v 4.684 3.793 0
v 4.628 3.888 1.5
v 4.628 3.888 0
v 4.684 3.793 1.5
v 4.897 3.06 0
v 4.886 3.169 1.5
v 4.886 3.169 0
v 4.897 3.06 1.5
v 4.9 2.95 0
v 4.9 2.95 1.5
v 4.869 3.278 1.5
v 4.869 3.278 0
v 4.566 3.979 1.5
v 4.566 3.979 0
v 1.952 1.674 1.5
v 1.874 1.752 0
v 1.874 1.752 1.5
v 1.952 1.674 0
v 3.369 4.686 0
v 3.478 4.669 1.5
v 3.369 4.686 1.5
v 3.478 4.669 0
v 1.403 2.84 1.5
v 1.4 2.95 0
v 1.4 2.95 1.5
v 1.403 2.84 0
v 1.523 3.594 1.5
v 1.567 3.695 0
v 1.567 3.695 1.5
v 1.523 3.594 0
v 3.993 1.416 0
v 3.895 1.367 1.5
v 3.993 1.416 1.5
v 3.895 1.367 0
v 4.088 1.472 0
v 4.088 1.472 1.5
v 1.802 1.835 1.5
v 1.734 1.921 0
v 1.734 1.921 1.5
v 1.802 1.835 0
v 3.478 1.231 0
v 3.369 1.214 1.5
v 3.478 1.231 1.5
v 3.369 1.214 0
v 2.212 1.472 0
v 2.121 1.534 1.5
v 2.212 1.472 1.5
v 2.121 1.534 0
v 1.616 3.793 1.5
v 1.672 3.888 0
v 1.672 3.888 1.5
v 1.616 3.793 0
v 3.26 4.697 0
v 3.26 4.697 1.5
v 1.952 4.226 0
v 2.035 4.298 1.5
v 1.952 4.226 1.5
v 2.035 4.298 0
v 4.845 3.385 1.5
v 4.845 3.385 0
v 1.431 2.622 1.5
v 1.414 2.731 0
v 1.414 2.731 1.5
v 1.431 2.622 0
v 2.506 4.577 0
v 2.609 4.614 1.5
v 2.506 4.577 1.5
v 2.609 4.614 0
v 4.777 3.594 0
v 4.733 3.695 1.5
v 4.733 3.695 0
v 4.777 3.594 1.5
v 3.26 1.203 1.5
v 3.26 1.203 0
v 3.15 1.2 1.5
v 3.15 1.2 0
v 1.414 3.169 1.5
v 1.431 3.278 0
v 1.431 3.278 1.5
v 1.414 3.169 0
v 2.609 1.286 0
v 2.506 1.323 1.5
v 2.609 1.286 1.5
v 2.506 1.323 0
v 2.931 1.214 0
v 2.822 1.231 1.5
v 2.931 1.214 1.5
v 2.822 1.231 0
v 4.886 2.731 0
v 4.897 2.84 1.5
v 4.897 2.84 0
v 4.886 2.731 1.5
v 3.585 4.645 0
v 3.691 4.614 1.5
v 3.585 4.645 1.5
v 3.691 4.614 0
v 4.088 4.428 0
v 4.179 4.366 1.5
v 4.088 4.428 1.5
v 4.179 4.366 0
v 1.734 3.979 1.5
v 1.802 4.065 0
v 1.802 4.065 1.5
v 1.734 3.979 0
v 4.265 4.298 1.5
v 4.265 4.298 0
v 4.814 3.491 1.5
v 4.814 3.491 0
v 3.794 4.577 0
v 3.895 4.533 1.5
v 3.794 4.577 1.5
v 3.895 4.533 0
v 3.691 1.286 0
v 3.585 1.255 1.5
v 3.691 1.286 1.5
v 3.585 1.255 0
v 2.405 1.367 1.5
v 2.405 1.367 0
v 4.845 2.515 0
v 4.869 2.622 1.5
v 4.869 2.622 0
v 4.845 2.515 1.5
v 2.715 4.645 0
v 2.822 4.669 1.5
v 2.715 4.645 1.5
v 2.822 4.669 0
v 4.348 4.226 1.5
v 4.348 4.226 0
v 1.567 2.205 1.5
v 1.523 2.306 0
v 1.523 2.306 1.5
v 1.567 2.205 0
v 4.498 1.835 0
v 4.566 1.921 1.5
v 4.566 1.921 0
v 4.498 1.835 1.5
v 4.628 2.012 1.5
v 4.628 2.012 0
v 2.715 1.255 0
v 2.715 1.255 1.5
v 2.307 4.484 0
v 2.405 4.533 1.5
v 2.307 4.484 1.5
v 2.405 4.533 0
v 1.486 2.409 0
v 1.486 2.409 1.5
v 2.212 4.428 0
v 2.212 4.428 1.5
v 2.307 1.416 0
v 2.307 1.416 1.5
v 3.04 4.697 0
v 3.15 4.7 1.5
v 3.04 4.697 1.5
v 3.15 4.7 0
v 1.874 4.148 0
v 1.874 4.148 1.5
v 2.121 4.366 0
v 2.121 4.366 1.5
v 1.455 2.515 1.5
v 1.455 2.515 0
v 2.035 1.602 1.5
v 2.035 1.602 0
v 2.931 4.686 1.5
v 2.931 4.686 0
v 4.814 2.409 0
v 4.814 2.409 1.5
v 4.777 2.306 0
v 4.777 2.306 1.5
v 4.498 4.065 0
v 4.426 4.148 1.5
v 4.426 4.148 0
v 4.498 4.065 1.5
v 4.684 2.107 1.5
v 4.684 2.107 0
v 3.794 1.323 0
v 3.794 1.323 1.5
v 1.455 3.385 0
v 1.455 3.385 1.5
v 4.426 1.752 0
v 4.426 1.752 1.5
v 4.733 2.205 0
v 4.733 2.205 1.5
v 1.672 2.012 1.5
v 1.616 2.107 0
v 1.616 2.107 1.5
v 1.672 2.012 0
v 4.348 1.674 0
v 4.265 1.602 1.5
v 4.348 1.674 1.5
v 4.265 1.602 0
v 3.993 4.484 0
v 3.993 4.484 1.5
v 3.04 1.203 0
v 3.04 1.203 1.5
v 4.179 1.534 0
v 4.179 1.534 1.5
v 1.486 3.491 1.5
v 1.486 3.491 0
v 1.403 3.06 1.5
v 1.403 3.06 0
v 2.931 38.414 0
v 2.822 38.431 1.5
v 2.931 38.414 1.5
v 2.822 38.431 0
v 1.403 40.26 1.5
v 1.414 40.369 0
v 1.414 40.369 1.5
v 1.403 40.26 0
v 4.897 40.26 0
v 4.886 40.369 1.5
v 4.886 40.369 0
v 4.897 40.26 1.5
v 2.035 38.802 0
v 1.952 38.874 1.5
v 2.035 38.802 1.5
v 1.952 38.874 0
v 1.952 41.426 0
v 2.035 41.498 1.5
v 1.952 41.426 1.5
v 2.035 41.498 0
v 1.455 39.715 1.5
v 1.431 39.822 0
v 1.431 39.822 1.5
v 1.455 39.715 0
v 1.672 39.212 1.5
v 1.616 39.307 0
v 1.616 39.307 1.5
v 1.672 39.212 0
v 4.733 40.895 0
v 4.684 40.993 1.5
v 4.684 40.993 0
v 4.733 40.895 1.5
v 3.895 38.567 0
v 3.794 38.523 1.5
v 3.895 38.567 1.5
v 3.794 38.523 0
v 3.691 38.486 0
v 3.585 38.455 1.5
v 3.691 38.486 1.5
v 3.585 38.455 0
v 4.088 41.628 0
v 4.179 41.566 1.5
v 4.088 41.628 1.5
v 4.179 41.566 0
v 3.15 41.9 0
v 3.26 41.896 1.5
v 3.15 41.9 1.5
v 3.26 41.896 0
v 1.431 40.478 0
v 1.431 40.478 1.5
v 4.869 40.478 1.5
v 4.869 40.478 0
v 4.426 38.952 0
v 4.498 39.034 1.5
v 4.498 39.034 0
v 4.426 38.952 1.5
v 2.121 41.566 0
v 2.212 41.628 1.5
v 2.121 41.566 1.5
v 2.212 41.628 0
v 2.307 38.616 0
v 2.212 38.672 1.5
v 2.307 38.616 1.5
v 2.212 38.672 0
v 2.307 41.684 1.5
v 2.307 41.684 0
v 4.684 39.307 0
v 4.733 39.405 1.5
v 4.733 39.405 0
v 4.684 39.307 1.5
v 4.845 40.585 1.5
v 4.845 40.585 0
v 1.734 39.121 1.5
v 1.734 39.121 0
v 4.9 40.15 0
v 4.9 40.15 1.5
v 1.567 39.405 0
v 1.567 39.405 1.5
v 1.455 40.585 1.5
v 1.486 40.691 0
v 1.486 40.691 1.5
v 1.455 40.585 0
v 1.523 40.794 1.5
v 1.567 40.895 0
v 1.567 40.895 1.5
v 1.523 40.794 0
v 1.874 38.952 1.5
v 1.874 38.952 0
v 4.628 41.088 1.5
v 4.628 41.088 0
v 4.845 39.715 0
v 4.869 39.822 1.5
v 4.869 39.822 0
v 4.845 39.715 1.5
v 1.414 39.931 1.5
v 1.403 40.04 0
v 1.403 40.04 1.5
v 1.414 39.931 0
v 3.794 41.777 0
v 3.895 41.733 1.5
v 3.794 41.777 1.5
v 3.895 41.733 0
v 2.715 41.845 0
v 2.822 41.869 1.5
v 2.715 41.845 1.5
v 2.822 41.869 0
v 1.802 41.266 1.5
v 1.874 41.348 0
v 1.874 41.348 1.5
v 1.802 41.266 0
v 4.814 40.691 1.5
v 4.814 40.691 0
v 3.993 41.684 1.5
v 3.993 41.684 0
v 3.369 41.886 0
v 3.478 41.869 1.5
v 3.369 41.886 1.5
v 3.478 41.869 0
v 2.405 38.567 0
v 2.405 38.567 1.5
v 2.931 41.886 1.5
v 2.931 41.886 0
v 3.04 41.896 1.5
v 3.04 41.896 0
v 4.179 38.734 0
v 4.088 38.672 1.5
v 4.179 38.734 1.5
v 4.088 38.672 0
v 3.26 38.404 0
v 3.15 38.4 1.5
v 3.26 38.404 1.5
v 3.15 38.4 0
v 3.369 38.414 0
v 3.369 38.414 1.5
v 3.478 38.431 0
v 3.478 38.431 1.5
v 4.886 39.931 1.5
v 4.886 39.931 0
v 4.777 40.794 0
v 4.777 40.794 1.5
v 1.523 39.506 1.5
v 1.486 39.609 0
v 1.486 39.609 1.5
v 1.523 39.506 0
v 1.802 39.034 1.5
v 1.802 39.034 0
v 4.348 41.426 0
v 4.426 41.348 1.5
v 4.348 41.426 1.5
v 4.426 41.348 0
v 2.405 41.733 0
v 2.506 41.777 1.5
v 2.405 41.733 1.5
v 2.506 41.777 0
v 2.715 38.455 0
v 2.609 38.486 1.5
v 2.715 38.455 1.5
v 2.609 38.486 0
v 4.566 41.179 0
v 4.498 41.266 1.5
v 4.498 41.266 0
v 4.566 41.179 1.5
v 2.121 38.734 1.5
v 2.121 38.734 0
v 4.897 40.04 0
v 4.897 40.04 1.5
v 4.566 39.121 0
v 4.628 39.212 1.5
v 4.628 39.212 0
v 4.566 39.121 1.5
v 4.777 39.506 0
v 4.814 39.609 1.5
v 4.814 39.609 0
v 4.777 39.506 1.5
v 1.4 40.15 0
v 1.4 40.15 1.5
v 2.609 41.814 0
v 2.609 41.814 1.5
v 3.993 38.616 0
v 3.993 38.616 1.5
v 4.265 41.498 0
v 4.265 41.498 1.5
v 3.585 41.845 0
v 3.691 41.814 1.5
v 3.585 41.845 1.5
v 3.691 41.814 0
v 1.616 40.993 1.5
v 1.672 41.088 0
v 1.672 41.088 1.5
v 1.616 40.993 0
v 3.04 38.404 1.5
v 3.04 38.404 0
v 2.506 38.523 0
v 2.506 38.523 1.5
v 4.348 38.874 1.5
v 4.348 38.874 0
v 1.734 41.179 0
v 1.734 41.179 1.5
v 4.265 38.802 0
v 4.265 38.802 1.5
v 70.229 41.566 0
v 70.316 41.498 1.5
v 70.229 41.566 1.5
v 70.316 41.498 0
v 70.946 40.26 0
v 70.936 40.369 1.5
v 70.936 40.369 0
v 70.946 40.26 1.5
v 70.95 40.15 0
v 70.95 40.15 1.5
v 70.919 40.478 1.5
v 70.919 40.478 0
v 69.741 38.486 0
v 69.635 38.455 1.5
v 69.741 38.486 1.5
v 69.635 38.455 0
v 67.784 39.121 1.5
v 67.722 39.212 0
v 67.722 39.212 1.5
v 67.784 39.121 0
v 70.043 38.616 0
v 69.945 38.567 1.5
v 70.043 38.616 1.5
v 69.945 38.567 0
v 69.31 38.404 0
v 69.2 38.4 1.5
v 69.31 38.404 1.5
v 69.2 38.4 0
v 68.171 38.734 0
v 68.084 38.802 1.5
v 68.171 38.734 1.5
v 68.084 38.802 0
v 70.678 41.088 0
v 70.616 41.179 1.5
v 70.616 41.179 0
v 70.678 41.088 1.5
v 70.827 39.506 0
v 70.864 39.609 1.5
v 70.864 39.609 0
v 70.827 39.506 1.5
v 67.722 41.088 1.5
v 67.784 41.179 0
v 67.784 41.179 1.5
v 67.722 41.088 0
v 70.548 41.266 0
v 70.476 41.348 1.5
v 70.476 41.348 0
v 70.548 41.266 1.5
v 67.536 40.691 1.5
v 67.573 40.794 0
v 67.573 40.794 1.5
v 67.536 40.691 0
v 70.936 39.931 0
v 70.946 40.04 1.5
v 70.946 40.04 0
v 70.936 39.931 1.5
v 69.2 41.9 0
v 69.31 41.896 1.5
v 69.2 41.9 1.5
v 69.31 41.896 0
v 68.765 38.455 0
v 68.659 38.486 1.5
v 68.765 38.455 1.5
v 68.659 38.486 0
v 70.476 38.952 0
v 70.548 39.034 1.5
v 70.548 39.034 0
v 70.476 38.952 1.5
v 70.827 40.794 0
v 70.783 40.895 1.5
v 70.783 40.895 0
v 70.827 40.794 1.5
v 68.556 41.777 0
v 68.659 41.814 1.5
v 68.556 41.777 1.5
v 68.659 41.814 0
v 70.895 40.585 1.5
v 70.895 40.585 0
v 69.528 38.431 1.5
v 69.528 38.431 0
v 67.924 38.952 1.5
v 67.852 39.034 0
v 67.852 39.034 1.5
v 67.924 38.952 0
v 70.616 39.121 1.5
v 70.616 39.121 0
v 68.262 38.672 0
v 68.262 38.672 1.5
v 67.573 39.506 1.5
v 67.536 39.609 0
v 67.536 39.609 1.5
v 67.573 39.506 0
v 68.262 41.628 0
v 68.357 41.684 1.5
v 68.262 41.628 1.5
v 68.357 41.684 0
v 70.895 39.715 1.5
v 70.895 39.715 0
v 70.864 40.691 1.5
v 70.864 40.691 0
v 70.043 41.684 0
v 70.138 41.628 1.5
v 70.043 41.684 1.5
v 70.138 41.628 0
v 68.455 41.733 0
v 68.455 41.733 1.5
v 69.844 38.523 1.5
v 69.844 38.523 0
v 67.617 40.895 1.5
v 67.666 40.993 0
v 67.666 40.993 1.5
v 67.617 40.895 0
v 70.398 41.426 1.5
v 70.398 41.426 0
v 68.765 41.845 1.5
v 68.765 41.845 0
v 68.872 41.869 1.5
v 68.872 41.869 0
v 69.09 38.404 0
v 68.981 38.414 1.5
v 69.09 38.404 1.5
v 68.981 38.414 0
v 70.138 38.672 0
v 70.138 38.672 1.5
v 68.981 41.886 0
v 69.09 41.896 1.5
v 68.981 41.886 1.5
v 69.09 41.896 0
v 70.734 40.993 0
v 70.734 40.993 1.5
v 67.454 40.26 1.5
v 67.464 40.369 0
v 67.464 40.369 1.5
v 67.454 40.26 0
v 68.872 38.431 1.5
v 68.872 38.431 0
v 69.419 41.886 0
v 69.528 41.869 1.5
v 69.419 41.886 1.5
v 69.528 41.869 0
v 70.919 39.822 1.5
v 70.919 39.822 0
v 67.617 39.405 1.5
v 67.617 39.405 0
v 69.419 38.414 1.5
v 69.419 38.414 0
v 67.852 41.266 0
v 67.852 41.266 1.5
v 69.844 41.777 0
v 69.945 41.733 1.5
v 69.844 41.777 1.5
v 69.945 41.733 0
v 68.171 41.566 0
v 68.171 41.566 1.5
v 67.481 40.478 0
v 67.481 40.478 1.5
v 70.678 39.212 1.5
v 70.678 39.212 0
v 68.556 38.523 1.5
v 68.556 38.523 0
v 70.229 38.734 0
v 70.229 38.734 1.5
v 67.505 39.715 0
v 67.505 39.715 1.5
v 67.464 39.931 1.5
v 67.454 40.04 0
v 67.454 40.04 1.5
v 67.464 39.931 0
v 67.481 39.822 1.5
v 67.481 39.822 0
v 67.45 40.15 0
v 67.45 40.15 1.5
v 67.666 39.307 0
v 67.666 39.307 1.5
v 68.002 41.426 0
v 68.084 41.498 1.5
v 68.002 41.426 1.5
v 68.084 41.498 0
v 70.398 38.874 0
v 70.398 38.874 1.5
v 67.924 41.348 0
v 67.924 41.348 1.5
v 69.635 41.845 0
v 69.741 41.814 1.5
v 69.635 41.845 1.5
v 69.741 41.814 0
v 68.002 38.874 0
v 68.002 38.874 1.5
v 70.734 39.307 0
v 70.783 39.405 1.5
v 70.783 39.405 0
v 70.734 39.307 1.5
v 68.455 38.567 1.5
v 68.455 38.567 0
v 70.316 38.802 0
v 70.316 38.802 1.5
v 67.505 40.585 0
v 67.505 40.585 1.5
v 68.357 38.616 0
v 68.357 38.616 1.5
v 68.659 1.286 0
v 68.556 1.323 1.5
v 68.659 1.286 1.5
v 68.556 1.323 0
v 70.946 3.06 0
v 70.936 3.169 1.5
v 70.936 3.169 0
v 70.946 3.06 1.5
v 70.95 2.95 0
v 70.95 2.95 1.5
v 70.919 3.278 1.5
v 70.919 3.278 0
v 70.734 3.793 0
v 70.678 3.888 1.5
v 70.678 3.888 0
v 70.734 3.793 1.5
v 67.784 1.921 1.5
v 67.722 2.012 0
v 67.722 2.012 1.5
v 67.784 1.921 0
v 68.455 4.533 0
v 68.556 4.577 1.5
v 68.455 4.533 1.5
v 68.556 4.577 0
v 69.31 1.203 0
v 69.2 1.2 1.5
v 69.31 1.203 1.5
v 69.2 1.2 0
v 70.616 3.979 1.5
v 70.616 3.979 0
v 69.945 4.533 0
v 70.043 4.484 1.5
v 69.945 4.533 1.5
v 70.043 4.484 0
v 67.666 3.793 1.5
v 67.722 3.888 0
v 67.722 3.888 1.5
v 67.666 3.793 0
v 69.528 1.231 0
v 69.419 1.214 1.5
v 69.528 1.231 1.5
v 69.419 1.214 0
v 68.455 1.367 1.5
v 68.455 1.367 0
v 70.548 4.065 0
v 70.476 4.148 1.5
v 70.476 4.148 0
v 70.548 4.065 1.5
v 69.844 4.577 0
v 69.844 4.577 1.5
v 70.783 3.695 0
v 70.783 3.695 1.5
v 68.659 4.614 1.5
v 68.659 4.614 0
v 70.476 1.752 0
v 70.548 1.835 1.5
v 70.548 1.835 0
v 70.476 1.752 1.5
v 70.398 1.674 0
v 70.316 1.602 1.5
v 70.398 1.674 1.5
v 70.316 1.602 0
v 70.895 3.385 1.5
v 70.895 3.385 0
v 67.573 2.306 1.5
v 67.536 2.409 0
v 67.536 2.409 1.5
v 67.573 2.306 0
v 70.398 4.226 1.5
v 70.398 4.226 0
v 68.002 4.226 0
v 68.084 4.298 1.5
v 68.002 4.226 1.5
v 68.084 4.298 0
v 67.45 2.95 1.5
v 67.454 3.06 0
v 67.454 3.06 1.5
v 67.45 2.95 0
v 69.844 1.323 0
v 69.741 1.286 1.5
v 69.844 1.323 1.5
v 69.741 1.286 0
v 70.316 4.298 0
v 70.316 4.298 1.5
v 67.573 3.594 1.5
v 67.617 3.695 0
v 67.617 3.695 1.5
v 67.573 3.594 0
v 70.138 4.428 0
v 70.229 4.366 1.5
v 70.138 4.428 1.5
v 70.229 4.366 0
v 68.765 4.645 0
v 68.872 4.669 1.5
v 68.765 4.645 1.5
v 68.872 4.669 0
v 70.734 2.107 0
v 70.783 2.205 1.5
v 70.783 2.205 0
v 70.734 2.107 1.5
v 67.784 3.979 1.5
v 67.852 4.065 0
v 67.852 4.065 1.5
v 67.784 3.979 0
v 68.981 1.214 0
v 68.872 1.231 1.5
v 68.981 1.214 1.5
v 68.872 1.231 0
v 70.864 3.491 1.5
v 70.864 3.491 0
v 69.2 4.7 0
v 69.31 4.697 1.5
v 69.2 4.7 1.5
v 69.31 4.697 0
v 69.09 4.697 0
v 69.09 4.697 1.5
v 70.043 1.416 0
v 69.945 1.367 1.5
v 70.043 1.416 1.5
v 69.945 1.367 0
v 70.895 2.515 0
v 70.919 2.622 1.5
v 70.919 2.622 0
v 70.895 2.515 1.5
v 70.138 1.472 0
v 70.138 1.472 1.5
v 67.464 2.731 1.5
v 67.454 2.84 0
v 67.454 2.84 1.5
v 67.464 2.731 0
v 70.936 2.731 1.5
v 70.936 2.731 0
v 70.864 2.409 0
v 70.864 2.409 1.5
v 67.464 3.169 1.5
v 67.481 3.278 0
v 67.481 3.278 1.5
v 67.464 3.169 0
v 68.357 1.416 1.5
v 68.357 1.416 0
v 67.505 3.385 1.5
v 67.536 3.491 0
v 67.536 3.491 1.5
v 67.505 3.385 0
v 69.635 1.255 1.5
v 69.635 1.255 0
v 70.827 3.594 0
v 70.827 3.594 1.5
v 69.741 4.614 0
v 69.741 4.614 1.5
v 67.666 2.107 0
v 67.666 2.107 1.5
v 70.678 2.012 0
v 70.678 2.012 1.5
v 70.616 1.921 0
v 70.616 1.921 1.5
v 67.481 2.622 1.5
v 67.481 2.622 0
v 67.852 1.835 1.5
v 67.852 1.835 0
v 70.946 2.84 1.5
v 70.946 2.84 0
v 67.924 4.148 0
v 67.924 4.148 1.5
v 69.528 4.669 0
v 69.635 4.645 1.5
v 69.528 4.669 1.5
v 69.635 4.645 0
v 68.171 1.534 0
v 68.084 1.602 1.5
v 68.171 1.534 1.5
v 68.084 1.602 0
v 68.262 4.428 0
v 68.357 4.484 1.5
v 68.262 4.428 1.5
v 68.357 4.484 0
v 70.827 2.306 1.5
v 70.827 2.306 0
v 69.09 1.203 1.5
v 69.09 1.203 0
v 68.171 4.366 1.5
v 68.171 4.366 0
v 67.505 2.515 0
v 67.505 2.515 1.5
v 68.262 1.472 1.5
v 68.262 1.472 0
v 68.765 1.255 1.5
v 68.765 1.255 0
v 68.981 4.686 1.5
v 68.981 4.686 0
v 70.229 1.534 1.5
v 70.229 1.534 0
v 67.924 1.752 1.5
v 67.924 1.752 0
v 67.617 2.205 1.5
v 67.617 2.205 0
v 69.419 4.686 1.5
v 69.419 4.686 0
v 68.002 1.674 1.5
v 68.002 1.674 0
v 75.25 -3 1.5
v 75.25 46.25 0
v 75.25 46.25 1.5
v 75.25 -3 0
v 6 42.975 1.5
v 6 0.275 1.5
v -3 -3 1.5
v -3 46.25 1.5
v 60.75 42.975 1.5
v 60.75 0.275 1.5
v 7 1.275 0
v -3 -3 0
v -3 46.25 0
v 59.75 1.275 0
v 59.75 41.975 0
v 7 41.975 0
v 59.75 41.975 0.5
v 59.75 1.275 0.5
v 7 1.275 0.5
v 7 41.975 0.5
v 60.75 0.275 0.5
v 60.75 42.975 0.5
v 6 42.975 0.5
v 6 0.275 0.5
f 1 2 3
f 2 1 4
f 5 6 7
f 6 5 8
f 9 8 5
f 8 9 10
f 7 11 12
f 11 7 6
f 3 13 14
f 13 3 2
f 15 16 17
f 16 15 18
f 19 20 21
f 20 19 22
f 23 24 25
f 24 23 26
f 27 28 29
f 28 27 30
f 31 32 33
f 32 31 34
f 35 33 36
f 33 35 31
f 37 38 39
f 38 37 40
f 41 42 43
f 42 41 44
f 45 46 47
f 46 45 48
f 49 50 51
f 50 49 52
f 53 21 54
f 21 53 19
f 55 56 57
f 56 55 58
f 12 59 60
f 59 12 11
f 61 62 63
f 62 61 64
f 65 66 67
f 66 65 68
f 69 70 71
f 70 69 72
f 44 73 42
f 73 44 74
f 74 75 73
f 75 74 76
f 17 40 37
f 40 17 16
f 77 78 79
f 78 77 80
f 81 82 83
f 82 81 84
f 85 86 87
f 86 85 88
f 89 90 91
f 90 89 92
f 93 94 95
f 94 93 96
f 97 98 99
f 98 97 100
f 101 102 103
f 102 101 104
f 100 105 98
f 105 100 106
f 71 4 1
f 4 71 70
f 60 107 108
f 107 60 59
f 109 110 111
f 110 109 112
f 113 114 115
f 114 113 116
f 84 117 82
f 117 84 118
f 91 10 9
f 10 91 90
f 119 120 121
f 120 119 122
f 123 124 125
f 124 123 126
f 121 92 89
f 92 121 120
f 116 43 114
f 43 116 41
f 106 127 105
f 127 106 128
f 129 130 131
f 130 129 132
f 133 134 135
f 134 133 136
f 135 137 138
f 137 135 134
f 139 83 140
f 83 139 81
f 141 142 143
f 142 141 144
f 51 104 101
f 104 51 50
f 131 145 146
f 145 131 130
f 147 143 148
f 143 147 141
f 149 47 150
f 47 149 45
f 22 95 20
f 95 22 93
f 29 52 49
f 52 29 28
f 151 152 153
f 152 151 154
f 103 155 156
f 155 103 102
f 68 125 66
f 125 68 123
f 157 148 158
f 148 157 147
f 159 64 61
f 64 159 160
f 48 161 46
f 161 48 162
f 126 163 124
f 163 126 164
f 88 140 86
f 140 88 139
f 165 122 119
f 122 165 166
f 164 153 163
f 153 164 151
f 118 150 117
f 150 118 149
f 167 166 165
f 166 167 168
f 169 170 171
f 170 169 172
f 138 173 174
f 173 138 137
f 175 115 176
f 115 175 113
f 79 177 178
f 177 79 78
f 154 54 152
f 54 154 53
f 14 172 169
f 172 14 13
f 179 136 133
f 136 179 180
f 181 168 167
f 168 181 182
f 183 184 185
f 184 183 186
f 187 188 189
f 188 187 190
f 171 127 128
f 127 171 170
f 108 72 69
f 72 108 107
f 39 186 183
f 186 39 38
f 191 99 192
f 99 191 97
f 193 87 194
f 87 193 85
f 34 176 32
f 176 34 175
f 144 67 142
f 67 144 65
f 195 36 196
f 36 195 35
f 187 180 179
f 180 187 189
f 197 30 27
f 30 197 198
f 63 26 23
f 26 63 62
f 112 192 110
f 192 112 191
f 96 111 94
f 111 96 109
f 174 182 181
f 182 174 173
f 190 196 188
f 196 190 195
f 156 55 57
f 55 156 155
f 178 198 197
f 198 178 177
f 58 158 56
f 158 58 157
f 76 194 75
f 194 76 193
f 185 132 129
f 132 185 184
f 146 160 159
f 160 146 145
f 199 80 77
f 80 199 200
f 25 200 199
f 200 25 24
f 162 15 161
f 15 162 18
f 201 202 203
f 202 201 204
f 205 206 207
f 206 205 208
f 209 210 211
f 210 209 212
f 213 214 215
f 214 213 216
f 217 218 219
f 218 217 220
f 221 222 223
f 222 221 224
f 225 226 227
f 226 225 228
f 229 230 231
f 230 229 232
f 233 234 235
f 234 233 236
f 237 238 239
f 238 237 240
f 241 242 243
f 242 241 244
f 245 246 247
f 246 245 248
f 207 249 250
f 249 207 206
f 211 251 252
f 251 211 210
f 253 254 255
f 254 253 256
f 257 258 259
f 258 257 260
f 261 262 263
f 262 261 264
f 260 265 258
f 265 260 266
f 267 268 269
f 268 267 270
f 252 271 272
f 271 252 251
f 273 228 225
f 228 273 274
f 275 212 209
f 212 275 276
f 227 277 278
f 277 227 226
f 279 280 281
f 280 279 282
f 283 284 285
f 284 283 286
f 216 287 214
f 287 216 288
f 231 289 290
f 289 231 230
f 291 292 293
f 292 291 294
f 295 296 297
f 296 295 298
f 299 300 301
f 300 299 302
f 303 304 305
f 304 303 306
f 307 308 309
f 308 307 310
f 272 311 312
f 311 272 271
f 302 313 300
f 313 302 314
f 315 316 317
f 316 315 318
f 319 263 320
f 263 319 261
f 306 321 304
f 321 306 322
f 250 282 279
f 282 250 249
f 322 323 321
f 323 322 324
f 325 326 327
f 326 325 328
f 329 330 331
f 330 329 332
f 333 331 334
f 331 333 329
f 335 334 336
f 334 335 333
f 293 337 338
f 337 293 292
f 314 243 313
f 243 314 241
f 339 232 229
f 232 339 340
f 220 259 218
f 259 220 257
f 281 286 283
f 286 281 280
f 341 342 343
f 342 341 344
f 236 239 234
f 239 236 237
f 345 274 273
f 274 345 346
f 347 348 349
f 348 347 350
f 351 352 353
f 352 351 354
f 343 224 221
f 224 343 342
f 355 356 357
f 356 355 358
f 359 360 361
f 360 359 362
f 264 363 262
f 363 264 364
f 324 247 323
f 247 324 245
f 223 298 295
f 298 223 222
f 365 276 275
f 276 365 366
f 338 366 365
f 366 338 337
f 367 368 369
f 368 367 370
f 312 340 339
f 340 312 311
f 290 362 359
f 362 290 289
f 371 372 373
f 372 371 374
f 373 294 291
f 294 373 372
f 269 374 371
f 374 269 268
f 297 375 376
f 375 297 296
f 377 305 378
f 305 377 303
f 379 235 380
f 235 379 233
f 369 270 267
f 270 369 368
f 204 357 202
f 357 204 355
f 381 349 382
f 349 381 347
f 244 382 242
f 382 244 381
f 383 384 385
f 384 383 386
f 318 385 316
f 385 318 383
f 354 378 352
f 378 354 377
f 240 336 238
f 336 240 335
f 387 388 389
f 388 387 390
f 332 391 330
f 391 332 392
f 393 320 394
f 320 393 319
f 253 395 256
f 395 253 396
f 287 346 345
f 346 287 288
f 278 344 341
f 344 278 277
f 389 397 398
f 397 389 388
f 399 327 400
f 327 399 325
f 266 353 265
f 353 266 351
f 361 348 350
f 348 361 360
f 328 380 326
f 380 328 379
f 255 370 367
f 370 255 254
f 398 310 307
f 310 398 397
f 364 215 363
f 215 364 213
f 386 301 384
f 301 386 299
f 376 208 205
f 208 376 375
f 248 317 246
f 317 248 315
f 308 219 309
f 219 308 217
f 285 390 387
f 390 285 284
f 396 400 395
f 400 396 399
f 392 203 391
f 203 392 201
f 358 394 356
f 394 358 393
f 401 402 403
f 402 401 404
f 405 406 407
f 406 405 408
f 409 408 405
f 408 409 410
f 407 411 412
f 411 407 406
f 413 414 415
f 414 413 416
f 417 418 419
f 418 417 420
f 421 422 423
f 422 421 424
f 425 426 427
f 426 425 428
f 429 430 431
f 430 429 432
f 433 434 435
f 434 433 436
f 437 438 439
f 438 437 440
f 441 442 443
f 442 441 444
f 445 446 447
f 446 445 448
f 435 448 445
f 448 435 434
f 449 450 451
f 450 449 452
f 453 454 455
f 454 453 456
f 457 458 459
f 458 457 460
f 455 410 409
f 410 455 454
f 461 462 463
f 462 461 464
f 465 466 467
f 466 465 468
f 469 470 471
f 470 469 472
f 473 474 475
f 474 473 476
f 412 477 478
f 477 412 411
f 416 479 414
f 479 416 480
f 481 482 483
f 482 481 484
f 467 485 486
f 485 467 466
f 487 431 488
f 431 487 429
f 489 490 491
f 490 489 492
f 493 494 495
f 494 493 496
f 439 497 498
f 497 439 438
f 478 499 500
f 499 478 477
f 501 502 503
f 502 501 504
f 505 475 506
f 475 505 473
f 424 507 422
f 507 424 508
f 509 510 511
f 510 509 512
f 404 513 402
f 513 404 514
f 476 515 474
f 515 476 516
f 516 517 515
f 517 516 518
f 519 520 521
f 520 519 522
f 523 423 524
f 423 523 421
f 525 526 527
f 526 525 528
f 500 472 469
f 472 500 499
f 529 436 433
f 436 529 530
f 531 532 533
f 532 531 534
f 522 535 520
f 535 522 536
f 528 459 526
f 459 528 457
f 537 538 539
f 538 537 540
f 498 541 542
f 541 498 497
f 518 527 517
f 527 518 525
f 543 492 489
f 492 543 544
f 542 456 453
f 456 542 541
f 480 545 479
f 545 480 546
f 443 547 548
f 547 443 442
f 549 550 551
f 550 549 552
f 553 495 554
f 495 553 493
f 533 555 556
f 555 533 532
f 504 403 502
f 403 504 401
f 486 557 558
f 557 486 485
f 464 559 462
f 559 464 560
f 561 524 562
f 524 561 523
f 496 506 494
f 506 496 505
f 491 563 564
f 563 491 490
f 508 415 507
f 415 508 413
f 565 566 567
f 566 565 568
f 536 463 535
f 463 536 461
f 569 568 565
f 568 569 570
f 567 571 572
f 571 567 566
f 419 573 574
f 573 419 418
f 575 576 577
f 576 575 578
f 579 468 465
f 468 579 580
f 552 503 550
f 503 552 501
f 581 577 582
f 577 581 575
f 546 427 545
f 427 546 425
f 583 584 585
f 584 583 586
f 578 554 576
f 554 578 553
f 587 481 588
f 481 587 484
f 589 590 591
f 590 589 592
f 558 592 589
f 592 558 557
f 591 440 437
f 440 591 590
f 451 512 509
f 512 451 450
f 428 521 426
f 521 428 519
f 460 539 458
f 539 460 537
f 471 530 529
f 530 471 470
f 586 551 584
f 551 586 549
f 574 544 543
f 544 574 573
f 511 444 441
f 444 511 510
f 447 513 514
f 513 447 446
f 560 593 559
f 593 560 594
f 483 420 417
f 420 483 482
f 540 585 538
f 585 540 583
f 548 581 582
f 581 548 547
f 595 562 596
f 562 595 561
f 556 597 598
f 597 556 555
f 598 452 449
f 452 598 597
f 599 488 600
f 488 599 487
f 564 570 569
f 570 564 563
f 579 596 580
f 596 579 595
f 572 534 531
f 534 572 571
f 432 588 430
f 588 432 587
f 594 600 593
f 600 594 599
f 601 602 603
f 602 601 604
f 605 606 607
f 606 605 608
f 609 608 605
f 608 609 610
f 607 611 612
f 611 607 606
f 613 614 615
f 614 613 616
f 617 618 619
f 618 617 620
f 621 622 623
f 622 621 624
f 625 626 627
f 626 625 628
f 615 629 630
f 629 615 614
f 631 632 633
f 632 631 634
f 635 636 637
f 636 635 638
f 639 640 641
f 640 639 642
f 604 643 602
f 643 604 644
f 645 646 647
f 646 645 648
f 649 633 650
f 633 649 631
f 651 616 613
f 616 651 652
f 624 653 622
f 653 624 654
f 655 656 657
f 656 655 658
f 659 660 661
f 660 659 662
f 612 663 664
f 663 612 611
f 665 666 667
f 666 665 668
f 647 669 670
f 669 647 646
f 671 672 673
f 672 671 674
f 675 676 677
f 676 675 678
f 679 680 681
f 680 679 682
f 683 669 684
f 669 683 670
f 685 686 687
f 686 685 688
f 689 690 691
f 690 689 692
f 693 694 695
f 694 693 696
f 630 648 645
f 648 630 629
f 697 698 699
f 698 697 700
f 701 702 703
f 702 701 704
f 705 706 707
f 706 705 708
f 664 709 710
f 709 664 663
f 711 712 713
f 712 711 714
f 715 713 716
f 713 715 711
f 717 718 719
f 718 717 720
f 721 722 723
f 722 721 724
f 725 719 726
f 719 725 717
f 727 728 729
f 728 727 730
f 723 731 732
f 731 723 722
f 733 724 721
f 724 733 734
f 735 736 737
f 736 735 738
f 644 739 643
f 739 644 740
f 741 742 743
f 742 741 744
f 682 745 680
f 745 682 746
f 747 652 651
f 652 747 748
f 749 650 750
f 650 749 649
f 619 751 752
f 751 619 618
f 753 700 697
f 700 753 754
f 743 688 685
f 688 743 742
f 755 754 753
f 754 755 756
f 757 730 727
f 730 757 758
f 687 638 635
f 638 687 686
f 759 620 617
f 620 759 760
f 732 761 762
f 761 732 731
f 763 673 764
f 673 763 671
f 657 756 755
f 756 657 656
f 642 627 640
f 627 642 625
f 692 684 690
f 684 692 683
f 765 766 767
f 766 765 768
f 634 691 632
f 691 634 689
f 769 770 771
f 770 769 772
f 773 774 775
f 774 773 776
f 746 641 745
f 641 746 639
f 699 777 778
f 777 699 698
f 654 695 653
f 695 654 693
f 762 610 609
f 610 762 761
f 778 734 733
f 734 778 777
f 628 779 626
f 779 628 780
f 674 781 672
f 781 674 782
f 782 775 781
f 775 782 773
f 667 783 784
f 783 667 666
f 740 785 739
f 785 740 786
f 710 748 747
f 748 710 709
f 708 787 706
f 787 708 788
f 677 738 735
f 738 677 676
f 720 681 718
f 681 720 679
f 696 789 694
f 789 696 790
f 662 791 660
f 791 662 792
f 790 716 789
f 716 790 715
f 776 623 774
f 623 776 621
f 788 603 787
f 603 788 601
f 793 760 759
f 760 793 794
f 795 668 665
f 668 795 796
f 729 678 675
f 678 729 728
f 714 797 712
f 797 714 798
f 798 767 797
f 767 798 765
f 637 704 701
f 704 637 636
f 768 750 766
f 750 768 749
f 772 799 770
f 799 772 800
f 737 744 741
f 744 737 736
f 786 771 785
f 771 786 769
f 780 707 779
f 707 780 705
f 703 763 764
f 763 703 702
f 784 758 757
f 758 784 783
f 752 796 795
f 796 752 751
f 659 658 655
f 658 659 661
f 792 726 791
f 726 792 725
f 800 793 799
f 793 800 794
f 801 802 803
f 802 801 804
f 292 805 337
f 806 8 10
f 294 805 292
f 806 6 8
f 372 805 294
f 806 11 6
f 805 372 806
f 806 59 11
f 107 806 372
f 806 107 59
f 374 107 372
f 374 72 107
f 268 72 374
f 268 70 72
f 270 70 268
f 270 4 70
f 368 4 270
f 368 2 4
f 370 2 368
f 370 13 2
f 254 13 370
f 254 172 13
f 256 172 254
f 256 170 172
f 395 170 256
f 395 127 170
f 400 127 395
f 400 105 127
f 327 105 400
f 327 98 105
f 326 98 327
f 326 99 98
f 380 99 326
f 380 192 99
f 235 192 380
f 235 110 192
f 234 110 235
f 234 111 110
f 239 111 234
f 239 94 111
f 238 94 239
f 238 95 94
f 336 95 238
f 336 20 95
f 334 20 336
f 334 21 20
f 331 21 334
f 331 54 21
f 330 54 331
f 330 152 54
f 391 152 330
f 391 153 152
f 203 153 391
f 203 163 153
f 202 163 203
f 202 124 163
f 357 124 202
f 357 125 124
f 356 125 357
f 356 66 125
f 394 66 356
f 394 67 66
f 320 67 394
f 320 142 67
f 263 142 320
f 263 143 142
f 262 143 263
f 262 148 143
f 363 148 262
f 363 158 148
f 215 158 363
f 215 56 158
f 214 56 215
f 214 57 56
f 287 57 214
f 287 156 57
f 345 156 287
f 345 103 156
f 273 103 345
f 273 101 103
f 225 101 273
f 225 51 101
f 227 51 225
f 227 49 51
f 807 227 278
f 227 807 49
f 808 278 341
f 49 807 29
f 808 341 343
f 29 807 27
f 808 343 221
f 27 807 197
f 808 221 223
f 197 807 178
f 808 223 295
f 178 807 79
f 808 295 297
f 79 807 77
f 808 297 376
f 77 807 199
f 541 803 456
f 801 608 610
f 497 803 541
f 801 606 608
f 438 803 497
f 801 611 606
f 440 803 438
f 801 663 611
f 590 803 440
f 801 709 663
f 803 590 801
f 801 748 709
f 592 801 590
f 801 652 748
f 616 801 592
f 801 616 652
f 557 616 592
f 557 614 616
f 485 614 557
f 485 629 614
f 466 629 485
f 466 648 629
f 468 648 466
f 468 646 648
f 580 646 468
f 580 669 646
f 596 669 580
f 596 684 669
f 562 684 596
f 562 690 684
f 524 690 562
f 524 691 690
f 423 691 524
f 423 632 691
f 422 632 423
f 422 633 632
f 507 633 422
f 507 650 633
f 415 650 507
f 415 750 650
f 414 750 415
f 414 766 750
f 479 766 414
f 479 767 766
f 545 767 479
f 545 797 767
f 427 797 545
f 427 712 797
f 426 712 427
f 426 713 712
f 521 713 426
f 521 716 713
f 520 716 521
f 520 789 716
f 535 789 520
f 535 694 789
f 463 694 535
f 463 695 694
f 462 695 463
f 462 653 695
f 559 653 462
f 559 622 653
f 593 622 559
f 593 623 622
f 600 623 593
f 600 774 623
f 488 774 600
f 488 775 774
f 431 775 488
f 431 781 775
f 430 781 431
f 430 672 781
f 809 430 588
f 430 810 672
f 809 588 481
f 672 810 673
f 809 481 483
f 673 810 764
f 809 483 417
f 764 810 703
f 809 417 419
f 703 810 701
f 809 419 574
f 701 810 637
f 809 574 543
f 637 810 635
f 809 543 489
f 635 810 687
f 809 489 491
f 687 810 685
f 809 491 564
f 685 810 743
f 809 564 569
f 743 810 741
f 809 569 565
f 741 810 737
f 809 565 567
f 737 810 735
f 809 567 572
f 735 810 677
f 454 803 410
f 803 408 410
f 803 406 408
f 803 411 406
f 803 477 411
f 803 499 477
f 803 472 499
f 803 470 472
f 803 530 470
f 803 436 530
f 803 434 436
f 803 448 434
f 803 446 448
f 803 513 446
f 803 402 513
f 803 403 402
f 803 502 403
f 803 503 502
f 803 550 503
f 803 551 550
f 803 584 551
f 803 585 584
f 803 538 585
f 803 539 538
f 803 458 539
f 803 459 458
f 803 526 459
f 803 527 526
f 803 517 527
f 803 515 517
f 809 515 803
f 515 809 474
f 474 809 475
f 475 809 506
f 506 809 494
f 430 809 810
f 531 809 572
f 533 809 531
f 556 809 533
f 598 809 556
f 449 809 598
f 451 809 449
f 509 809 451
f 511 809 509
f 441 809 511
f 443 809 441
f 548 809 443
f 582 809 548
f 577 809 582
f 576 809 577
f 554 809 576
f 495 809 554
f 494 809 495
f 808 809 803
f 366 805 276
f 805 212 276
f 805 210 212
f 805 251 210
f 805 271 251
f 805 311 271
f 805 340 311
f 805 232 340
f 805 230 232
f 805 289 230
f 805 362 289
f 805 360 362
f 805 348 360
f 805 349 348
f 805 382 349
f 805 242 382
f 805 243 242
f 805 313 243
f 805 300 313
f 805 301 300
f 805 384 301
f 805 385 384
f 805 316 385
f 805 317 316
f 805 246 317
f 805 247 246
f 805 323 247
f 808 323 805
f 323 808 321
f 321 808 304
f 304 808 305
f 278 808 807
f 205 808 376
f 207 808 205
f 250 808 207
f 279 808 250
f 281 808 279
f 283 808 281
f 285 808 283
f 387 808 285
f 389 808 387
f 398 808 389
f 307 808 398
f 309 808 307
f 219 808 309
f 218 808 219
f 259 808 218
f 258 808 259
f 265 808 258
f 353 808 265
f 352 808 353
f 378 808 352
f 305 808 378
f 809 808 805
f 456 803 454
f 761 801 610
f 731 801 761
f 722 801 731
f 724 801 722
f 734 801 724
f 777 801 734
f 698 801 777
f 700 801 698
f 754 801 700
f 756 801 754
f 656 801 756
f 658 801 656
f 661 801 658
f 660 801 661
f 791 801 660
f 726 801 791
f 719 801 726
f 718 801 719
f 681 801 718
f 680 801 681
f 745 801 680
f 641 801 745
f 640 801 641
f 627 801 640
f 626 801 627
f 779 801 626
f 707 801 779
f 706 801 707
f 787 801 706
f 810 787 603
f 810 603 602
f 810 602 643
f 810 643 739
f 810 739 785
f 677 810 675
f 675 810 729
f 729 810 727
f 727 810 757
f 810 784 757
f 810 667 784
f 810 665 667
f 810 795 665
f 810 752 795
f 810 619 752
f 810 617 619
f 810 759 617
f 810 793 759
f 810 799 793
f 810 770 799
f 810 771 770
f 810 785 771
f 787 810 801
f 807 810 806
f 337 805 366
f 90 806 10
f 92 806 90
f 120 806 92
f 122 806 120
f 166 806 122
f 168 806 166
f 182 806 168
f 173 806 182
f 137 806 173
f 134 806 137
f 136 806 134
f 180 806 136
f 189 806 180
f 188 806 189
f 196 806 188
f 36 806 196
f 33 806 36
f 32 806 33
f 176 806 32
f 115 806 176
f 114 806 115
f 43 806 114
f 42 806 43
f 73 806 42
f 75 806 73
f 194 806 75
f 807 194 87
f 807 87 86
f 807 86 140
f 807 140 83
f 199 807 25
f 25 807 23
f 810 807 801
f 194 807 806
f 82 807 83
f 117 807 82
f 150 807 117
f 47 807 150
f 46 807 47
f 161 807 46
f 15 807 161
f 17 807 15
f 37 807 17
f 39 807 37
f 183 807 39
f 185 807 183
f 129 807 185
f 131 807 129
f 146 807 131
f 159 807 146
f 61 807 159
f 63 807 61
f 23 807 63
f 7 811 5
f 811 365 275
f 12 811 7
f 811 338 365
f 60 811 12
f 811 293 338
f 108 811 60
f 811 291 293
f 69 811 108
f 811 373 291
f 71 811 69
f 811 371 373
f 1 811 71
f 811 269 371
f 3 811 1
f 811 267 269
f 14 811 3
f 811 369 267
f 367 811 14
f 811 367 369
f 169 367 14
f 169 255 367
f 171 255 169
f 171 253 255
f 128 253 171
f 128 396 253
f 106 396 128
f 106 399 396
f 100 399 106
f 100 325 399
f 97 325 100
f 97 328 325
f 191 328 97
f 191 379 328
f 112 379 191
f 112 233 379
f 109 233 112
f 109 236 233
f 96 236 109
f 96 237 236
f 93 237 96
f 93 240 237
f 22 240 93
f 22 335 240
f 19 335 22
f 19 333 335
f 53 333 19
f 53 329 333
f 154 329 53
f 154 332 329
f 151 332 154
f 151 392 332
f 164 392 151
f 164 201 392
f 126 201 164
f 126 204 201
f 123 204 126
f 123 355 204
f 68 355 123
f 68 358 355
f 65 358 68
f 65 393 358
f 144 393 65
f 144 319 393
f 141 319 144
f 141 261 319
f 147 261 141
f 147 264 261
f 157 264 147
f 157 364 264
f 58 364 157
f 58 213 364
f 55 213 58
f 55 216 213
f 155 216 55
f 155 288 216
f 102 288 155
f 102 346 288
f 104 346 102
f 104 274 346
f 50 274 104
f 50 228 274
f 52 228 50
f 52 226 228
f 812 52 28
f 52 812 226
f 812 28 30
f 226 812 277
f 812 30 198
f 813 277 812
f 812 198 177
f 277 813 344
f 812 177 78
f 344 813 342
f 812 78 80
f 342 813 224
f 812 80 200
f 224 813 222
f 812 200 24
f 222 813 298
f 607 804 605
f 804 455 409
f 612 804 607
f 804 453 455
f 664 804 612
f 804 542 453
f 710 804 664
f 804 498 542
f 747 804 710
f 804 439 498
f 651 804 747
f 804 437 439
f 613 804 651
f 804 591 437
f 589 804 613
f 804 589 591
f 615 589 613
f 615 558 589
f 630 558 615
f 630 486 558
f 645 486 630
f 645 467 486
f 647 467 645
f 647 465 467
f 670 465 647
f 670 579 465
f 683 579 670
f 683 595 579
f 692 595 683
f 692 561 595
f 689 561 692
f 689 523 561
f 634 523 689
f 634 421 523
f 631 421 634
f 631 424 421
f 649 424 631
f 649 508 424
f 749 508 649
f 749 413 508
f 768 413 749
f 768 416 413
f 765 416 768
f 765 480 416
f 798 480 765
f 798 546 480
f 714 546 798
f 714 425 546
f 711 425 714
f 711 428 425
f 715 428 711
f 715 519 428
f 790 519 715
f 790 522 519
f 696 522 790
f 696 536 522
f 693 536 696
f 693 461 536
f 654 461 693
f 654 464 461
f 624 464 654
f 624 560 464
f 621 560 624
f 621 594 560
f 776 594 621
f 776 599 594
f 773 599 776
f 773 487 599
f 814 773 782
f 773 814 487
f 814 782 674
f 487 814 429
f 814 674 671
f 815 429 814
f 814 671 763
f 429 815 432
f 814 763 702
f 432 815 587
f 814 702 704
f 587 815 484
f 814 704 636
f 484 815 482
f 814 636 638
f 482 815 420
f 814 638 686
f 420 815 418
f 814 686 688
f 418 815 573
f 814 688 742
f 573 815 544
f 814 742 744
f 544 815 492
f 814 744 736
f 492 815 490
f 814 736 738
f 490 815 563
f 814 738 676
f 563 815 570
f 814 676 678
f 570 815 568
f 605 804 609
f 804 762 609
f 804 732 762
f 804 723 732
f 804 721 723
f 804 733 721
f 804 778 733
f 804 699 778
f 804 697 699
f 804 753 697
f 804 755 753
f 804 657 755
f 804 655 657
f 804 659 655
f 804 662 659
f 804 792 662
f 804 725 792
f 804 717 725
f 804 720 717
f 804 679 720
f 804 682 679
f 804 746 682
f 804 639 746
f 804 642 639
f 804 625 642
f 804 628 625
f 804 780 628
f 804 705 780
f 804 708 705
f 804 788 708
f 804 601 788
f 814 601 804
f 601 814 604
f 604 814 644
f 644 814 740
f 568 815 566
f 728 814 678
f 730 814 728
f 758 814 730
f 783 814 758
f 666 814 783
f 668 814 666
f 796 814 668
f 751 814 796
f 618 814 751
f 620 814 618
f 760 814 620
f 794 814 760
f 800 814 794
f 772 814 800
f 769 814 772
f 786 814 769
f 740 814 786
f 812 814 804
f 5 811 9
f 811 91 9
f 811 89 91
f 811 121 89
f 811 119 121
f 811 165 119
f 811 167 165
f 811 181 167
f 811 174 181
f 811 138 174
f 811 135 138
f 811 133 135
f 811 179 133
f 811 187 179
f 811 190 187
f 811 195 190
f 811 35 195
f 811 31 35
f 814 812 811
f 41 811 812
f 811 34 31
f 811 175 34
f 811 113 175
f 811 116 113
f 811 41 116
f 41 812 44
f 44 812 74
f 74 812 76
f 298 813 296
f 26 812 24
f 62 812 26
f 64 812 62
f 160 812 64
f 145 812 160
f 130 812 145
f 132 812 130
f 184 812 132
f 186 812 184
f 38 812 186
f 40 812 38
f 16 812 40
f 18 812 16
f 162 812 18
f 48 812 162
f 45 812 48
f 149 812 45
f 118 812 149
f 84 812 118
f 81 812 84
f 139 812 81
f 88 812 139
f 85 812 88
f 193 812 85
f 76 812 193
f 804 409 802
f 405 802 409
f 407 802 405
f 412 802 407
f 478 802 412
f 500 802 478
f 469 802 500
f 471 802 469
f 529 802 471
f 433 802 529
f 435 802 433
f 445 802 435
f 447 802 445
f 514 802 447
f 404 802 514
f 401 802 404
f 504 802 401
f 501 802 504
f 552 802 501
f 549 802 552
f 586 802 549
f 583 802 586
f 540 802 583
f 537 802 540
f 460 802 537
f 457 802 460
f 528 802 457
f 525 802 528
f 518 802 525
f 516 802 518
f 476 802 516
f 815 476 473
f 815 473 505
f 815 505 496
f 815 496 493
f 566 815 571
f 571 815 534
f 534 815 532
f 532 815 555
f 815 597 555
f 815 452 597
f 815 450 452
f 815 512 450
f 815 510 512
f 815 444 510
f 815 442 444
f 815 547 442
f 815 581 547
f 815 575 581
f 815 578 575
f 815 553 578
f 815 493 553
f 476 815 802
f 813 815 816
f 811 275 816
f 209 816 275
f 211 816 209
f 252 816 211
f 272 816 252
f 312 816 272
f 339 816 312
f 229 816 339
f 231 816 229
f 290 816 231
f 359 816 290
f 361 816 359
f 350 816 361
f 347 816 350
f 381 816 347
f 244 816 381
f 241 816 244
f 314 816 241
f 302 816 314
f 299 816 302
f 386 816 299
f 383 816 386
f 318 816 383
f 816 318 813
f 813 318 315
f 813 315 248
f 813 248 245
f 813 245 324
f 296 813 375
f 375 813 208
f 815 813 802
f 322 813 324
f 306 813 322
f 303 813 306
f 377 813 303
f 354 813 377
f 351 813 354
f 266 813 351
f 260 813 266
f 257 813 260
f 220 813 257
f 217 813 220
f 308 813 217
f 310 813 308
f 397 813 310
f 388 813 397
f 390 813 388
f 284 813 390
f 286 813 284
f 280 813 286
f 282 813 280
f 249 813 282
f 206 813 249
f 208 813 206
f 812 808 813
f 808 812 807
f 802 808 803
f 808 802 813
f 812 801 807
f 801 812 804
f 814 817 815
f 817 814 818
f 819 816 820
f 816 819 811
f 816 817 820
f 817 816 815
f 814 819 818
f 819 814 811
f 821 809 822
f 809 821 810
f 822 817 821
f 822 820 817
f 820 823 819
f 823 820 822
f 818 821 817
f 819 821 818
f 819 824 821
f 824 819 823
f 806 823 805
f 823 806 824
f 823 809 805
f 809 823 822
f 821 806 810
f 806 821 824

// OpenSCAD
// file: ../libraries/commons.scad
module forEachCoord(throws_coords_list) {
    for (coords = throws_coords_list)
        translate(
            [
                coords[0] == undef ? 0 : coords[0],
                coords[1] == undef ? 0 : coords[1],
                coords[2] == undef ? 0 : coords[2],
            ]
        )
            children();
}


// @todo
module forEachPointCoord(throws_coords_list) {
    for (coords = throws_coords_list)
        translate(
            [
                coords[0] == undef ? 0 : coords[0],
                coords[1] == undef ? 0 : coords[1],
                coords[2] == undef ? 0 : coords[2],
            ]
        )
            children();
}
// file: ../enveloppes/screen-enveloppe.scad
include <../assets/lcd-screen/configurations.scad>

use <../libraries/commons.scad>

/**
 * screenFixationThrows
 * @name screenFixationThrows
 * @description screenFixationThrows
 * @type enveloppe
 * @parent root
 */
module screenFixationThrows(
    electronic_board_x_size = screen_asset_electronic_board_x_size,
    electronic_board_y_size = screen_asset_electronic_board_y_size,
    x_margin_left = screen_asset_x_margin_throws_left,
    x_margin_right = screen_asset_x_margin_throws_right,
    y_margin_top = screen_asset_y_margin_throws_top,
    y_margin_bottom = screen_asset_y_margin_throws_bottom,
    throw_diameter = 3.1,
    $fn = $fn
) {

    throws_z_size = 20;

    offset_coords_throw_list = [
        [
            x_margin_left,
            y_margin_bottom,
        ],
        [
            x_margin_left,
            electronic_board_y_size - y_margin_top,
        ],
        [
            electronic_board_x_size - x_margin_right,
            electronic_board_y_size - y_margin_top,
        ],
        [
            electronic_board_x_size - x_margin_right,
            y_margin_bottom,
        ]
    ];

    // Fixations throws
    translate([0,0, -throws_z_size / 2])
        forEachCoord(offset_coords_throw_list)
            cylinder(h = throws_z_size, d = throw_diameter, center = false, $fn = $fn);
}


module screenMainThrow(
    electronic_board_x_size = screen_asset_electronic_board_x_size,
    electronic_board_y_size = screen_asset_electronic_board_y_size,
    screen_external_x_size = screen_asset_screen_external_x_size,
    screen_external_y_size = screen_asset_screen_external_y_size,
    screen_throw_x_margin = 2.8,
    screen_throw_y_margin = 0.5
) {

    throws_z_size = 20;

    // Main screen throw
    translate([
        (electronic_board_x_size - screen_external_x_size) / 2 - screen_throw_x_margin,
        (electronic_board_y_size - screen_external_y_size) / 2 - screen_throw_y_margin,
        -throws_z_size / 2
    ])
        cube(
            [
                screen_external_x_size + (screen_throw_x_margin * 2),
                screen_external_y_size + (screen_throw_y_margin * 2),
                throws_z_size,
            ]
        );
}


module screenConnectorThrow(
    electronic_board_y_size = screen_asset_electronic_board_y_size
) {
    throws_z_size = 20;

    translate(
        [
            0.85 - (0.5 / 2),
            11.3,
            -throws_z_size / 2
        ]
    )
        cube(
            [
                2.5 + 0.5,
                electronic_board_y_size - (11.3 * 2),
                throws_z_size
            ]
        );
}


module sceenVisibleZoneCube(
    x_margin = 0,
    y_margin = 0,
    z_size = 0,

    electronic_board_x_size = screen_asset_electronic_board_x_size,
    electronic_board_y_size = screen_asset_electronic_board_y_size,
    screen_external_x_size = screen_asset_screen_external_x_size,
    screen_external_y_size = screen_asset_screen_external_y_size,
) {

    translate([
        (electronic_board_x_size - screen_external_x_size) / 2 + 1 - x_margin,
        (electronic_board_y_size - screen_external_y_size) / 2 + 1 - y_margin,
        0
    ])
        cube(
            [
                screen_external_x_size - 1 - 6.5 + (x_margin * 2),
                screen_external_y_size - 1 - 1 + (y_margin * 2),
                z_size,
            ]
        );
}
// file: ../configurations/global.scad
housing_facades_throws_diameter = 3.8;

// external size
case_external_x_size = 90;
case_external_y_size = 140;
case_external_z_size = 38;
case_external_panes_thickness = 4.8;

facade_front_round_edges_radius = 5;
facade_throws_margin = 5;

facade_front_fixation_throws_diameter = housing_facades_throws_diameter;

// facade corners
facade_corners_offset_lenght = 9;
facade_corners_main_x_size = 19;
facade_corners_main_y_size = 19;
facade_corners_main_thickness = 11;
facade_corners_correction_offset_length = 0.2;
facade_corners_correction_offset_thickness = 0.0;
facade_fn = 100;


facade_controller_coords = [
    case_external_x_size / 2,
    case_external_y_size / 2 - 30,
];


// Screen frames
screen_frame_electronic_board_margin = 3;
screen_frame_throw_diameter = 3.5;
screen_frame_piece_z_size = 1.5;
screen_frame_piece_glass_embedding_margin = 1;
screen_frame_piece_glass_embedding_z_depth = 1;
screen_frame_facade_piece_z_size = 1;
screen_frame_fn = 100;

screen_glass_visible_zone_x_margin = 0.7;
screen_glass_visible_zone_y_margin = 0.7;
screen_glass_z_size = 1;

facade_screen_coords = [
    case_external_x_size / 2,
    case_external_y_size / 2 + 28,
];


// Generics
insert_throw_diameter = 4.2;
insert_throw_length = 6 + 2;


// Controller facade
controller_breadboard_x_size_point = 28;
controller_breadboard_y_size_point = 9;

controller_facade_z_size = 2;
controller_facade_button_throw_margin = 1;
controller_facade_small_button_throw_margin = 0.5;
controller_facade_a_b_button_throw_margin = 0.5;

controller_facade_border_rounded_border_1 = 5;
controller_facade_border_rounded_border_2 = 4;

controller_facade_with_border_x_size = 82;
controller_facade_with_border_y_size = 47;

controller_facade_border_throws_margin = 5;
controller_braidboard_throw_margin = 1;

controller_facade_border_fn = 80;


// Cross Button
controller_cross_button_x_y_size = 20;
controller_cross_button_z_size = 4;
controller_cross_button_thickness = 6;
controller_cross_button_round_edges_radius = 1;
controller_cross_button_support_x_y_size = 22;
controller_cross_button_support_z_size = 1;
controller_cross_button_fn = 150;


// A and B Buttons
controller_a_b_button_diameter = 7.5;
controller_a_b_button_z_size = 4;
controller_a_b_button_support_diameter = 9.5;
controller_a_b_button_support_z_size = 1;
controller_a_b_button_fn = 80;


// small Buttons
controller_small_button_diameter = 5.5;
controller_small_button_z_size = 3;
controller_small_button_support_diameter = 7.5;
controller_small_button_support_z_size = 1;
controller_small_button_fn = 80;

// Directional cross
controller_directional_cross_points_coords = [6, 5];
controller_start_button_points_coords = [14, 3];
controller_select_button_points_coords = [18, 3];
controller_menu_button_points_coords = [14, 7];
controller_option_button_points_coords = [18, 7];
controller_a_button_points_coords = [23, 4];
controller_b_button_points_coords = [27, 6];
controller_bolt_throws_list = [
    [2, 2],
    [2, 8],
    [10, 2],
    [10, 8],
    [27, 2],
    [23, 8],
];


// usb charger holder
usb_charger_support_total_x_size = 17.57 + 15;
usb_charger_support_total_y_size = 12;
usb_charger_support_total_z_size = 2;


usb_charger_fixation_support_z_size = 4.5;
usb_charger_encaps_x_size = 17.57 + 1;
usb_charger_encaps_y_size = 27.85 + 1;
usb_charger_encaps_z_size = 1;

usb_charger_facade_x_fixation_spacing = 42;
usb_charger_facade_y_size = 1.36;
usb_charger_facade_z_size = 14;

usb_charger_throw_diameter = 3.5;
usb_charger_facade_holder_z_offset = 3.5; //
usb_charger_fixation_facade_y_margin = 0.5;
usb_charger_throw_offset_y = 4.5;
usb_charger_throw_offset_x = 3.5;
usb_charger_facade_fn = 100;

usb_charger_external_facade_main_throw_margin = 2;
usb_charger_external_facade_main_throw_diameter = housing_facades_throws_diameter;

usb_charger_coords = [
    28, 15
];


facade_top_on_off_button_throw_diameter = 12.8;

facade_top_on_off_button_coords = [
    case_external_x_size / 2 + 18,
    case_external_z_size / 2
];


// Bolt join Piece Mother board
bolt_join_mother_board_internal_diameter = 3.5;
bolt_join_mother_board_external_diameter = 3.5 + (0.4 * 6);
bolt_join_mother_board_height = 3;

// Bolt join Piece GamePadController
bolt_join_game_pad_internal_diameter = 3.5;
bolt_join_game_pad_external_diameter = 3.5 + (0.4 * 6);
bolt_join_game_pad_height = 6.5;

bolt_join_fn = 500;


// Mother board breadboard
mother_board_x_size_point = 25;
mother_board_y_size_point = 32;

mother_board_coords = [
    case_external_x_size / 2 - ((mother_board_x_size_point + 1) * 2.54) / 2,
    44,
    3
];

mother_board_bolt_throws_list = [
    [3, 2],
    [3, 17],
    [23, 2],
    [23, 17],
];


// Speaker
speaker_facade_throw_diameter = 28 + 1;
speaker_facade_z_size = 1.36;
speaker_facade_rounded_radius = 5;
// file: ../assets/lcd-screen/configurations.scad
screen_asset_electronic_board_x_size = 72.25;
screen_asset_electronic_board_y_size = 43.25;
screen_asset_electronic_board_z_size = 1.25;

screen_asset_screen_external_x_size = 60.25;
screen_asset_screen_external_y_size = 42.7;
screen_asset_screen_external_z_size = 4 - 1.25;

screen_asset_throw_diameter = 3.1;

screen_asset_x_margin_throws_left = 1.6 + 1.55;
screen_asset_x_margin_throws_right = 1.5 + 1.55;
screen_asset_y_margin_throws_top = 1.55 + 1.55;
screen_asset_y_margin_throws_bottom = 1.4 + 1.55;
// main file
include <../assets/lcd-screen/configurations.scad>
include <../configurations/global.scad>

use <../enveloppes/screen-enveloppe.scad>

/**
 * screenFramePiece
 * @name screenFramePiece
 * @description Piece 3D printed
 * @type piece
 * @parent screenComponent
 */
module screenFramePiece(
    electronic_board_x_size = screen_asset_electronic_board_x_size,
    electronic_board_y_size = screen_asset_electronic_board_y_size,

    screen_frame_electronic_board_margin = screen_frame_electronic_board_margin,
    screen_frame_z_size = screen_frame_piece_z_size,
    glass_embedding_margin = screen_frame_piece_glass_embedding_margin,
    glass_embedding_z_depth = screen_frame_piece_glass_embedding_z_depth,

    throw_diameter = screen_frame_throw_diameter,

    $fn = screen_frame_fn
) {

    left_margin = screen_frame_electronic_board_margin;
    right_margin = screen_frame_electronic_board_margin;
    top_margin = screen_frame_electronic_board_margin;
    bottom_margin = screen_frame_electronic_board_margin;

    throws_z_size = 20;

    difference() {
        translate([-left_margin, -bottom_margin, 0])
            cube(
                [
                    electronic_board_x_size + left_margin + right_margin,
                    electronic_board_y_size + top_margin + bottom_margin,
                    screen_frame_z_size
                ]
            );

        translate([0,0, -throws_z_size / 2])
            sceenVisibleZoneCube(
                z_size = throws_z_size
            );


        // Embedding glass
        translate([0,0, screen_frame_z_size - glass_embedding_z_depth])
            sceenVisibleZoneCube(
                x_margin = glass_embedding_margin,
                y_margin = glass_embedding_margin,
                z_size = glass_embedding_z_depth + 0.01
            );

        screenFixationThrows(
            throw_diameter = throw_diameter,
            $fn = $fn
        );
        
    }
}

/**
 * @stl
 * @png
 * @colorscheme BeforeDawn
 * @view axes,scales
 */
screenFramePiece();
